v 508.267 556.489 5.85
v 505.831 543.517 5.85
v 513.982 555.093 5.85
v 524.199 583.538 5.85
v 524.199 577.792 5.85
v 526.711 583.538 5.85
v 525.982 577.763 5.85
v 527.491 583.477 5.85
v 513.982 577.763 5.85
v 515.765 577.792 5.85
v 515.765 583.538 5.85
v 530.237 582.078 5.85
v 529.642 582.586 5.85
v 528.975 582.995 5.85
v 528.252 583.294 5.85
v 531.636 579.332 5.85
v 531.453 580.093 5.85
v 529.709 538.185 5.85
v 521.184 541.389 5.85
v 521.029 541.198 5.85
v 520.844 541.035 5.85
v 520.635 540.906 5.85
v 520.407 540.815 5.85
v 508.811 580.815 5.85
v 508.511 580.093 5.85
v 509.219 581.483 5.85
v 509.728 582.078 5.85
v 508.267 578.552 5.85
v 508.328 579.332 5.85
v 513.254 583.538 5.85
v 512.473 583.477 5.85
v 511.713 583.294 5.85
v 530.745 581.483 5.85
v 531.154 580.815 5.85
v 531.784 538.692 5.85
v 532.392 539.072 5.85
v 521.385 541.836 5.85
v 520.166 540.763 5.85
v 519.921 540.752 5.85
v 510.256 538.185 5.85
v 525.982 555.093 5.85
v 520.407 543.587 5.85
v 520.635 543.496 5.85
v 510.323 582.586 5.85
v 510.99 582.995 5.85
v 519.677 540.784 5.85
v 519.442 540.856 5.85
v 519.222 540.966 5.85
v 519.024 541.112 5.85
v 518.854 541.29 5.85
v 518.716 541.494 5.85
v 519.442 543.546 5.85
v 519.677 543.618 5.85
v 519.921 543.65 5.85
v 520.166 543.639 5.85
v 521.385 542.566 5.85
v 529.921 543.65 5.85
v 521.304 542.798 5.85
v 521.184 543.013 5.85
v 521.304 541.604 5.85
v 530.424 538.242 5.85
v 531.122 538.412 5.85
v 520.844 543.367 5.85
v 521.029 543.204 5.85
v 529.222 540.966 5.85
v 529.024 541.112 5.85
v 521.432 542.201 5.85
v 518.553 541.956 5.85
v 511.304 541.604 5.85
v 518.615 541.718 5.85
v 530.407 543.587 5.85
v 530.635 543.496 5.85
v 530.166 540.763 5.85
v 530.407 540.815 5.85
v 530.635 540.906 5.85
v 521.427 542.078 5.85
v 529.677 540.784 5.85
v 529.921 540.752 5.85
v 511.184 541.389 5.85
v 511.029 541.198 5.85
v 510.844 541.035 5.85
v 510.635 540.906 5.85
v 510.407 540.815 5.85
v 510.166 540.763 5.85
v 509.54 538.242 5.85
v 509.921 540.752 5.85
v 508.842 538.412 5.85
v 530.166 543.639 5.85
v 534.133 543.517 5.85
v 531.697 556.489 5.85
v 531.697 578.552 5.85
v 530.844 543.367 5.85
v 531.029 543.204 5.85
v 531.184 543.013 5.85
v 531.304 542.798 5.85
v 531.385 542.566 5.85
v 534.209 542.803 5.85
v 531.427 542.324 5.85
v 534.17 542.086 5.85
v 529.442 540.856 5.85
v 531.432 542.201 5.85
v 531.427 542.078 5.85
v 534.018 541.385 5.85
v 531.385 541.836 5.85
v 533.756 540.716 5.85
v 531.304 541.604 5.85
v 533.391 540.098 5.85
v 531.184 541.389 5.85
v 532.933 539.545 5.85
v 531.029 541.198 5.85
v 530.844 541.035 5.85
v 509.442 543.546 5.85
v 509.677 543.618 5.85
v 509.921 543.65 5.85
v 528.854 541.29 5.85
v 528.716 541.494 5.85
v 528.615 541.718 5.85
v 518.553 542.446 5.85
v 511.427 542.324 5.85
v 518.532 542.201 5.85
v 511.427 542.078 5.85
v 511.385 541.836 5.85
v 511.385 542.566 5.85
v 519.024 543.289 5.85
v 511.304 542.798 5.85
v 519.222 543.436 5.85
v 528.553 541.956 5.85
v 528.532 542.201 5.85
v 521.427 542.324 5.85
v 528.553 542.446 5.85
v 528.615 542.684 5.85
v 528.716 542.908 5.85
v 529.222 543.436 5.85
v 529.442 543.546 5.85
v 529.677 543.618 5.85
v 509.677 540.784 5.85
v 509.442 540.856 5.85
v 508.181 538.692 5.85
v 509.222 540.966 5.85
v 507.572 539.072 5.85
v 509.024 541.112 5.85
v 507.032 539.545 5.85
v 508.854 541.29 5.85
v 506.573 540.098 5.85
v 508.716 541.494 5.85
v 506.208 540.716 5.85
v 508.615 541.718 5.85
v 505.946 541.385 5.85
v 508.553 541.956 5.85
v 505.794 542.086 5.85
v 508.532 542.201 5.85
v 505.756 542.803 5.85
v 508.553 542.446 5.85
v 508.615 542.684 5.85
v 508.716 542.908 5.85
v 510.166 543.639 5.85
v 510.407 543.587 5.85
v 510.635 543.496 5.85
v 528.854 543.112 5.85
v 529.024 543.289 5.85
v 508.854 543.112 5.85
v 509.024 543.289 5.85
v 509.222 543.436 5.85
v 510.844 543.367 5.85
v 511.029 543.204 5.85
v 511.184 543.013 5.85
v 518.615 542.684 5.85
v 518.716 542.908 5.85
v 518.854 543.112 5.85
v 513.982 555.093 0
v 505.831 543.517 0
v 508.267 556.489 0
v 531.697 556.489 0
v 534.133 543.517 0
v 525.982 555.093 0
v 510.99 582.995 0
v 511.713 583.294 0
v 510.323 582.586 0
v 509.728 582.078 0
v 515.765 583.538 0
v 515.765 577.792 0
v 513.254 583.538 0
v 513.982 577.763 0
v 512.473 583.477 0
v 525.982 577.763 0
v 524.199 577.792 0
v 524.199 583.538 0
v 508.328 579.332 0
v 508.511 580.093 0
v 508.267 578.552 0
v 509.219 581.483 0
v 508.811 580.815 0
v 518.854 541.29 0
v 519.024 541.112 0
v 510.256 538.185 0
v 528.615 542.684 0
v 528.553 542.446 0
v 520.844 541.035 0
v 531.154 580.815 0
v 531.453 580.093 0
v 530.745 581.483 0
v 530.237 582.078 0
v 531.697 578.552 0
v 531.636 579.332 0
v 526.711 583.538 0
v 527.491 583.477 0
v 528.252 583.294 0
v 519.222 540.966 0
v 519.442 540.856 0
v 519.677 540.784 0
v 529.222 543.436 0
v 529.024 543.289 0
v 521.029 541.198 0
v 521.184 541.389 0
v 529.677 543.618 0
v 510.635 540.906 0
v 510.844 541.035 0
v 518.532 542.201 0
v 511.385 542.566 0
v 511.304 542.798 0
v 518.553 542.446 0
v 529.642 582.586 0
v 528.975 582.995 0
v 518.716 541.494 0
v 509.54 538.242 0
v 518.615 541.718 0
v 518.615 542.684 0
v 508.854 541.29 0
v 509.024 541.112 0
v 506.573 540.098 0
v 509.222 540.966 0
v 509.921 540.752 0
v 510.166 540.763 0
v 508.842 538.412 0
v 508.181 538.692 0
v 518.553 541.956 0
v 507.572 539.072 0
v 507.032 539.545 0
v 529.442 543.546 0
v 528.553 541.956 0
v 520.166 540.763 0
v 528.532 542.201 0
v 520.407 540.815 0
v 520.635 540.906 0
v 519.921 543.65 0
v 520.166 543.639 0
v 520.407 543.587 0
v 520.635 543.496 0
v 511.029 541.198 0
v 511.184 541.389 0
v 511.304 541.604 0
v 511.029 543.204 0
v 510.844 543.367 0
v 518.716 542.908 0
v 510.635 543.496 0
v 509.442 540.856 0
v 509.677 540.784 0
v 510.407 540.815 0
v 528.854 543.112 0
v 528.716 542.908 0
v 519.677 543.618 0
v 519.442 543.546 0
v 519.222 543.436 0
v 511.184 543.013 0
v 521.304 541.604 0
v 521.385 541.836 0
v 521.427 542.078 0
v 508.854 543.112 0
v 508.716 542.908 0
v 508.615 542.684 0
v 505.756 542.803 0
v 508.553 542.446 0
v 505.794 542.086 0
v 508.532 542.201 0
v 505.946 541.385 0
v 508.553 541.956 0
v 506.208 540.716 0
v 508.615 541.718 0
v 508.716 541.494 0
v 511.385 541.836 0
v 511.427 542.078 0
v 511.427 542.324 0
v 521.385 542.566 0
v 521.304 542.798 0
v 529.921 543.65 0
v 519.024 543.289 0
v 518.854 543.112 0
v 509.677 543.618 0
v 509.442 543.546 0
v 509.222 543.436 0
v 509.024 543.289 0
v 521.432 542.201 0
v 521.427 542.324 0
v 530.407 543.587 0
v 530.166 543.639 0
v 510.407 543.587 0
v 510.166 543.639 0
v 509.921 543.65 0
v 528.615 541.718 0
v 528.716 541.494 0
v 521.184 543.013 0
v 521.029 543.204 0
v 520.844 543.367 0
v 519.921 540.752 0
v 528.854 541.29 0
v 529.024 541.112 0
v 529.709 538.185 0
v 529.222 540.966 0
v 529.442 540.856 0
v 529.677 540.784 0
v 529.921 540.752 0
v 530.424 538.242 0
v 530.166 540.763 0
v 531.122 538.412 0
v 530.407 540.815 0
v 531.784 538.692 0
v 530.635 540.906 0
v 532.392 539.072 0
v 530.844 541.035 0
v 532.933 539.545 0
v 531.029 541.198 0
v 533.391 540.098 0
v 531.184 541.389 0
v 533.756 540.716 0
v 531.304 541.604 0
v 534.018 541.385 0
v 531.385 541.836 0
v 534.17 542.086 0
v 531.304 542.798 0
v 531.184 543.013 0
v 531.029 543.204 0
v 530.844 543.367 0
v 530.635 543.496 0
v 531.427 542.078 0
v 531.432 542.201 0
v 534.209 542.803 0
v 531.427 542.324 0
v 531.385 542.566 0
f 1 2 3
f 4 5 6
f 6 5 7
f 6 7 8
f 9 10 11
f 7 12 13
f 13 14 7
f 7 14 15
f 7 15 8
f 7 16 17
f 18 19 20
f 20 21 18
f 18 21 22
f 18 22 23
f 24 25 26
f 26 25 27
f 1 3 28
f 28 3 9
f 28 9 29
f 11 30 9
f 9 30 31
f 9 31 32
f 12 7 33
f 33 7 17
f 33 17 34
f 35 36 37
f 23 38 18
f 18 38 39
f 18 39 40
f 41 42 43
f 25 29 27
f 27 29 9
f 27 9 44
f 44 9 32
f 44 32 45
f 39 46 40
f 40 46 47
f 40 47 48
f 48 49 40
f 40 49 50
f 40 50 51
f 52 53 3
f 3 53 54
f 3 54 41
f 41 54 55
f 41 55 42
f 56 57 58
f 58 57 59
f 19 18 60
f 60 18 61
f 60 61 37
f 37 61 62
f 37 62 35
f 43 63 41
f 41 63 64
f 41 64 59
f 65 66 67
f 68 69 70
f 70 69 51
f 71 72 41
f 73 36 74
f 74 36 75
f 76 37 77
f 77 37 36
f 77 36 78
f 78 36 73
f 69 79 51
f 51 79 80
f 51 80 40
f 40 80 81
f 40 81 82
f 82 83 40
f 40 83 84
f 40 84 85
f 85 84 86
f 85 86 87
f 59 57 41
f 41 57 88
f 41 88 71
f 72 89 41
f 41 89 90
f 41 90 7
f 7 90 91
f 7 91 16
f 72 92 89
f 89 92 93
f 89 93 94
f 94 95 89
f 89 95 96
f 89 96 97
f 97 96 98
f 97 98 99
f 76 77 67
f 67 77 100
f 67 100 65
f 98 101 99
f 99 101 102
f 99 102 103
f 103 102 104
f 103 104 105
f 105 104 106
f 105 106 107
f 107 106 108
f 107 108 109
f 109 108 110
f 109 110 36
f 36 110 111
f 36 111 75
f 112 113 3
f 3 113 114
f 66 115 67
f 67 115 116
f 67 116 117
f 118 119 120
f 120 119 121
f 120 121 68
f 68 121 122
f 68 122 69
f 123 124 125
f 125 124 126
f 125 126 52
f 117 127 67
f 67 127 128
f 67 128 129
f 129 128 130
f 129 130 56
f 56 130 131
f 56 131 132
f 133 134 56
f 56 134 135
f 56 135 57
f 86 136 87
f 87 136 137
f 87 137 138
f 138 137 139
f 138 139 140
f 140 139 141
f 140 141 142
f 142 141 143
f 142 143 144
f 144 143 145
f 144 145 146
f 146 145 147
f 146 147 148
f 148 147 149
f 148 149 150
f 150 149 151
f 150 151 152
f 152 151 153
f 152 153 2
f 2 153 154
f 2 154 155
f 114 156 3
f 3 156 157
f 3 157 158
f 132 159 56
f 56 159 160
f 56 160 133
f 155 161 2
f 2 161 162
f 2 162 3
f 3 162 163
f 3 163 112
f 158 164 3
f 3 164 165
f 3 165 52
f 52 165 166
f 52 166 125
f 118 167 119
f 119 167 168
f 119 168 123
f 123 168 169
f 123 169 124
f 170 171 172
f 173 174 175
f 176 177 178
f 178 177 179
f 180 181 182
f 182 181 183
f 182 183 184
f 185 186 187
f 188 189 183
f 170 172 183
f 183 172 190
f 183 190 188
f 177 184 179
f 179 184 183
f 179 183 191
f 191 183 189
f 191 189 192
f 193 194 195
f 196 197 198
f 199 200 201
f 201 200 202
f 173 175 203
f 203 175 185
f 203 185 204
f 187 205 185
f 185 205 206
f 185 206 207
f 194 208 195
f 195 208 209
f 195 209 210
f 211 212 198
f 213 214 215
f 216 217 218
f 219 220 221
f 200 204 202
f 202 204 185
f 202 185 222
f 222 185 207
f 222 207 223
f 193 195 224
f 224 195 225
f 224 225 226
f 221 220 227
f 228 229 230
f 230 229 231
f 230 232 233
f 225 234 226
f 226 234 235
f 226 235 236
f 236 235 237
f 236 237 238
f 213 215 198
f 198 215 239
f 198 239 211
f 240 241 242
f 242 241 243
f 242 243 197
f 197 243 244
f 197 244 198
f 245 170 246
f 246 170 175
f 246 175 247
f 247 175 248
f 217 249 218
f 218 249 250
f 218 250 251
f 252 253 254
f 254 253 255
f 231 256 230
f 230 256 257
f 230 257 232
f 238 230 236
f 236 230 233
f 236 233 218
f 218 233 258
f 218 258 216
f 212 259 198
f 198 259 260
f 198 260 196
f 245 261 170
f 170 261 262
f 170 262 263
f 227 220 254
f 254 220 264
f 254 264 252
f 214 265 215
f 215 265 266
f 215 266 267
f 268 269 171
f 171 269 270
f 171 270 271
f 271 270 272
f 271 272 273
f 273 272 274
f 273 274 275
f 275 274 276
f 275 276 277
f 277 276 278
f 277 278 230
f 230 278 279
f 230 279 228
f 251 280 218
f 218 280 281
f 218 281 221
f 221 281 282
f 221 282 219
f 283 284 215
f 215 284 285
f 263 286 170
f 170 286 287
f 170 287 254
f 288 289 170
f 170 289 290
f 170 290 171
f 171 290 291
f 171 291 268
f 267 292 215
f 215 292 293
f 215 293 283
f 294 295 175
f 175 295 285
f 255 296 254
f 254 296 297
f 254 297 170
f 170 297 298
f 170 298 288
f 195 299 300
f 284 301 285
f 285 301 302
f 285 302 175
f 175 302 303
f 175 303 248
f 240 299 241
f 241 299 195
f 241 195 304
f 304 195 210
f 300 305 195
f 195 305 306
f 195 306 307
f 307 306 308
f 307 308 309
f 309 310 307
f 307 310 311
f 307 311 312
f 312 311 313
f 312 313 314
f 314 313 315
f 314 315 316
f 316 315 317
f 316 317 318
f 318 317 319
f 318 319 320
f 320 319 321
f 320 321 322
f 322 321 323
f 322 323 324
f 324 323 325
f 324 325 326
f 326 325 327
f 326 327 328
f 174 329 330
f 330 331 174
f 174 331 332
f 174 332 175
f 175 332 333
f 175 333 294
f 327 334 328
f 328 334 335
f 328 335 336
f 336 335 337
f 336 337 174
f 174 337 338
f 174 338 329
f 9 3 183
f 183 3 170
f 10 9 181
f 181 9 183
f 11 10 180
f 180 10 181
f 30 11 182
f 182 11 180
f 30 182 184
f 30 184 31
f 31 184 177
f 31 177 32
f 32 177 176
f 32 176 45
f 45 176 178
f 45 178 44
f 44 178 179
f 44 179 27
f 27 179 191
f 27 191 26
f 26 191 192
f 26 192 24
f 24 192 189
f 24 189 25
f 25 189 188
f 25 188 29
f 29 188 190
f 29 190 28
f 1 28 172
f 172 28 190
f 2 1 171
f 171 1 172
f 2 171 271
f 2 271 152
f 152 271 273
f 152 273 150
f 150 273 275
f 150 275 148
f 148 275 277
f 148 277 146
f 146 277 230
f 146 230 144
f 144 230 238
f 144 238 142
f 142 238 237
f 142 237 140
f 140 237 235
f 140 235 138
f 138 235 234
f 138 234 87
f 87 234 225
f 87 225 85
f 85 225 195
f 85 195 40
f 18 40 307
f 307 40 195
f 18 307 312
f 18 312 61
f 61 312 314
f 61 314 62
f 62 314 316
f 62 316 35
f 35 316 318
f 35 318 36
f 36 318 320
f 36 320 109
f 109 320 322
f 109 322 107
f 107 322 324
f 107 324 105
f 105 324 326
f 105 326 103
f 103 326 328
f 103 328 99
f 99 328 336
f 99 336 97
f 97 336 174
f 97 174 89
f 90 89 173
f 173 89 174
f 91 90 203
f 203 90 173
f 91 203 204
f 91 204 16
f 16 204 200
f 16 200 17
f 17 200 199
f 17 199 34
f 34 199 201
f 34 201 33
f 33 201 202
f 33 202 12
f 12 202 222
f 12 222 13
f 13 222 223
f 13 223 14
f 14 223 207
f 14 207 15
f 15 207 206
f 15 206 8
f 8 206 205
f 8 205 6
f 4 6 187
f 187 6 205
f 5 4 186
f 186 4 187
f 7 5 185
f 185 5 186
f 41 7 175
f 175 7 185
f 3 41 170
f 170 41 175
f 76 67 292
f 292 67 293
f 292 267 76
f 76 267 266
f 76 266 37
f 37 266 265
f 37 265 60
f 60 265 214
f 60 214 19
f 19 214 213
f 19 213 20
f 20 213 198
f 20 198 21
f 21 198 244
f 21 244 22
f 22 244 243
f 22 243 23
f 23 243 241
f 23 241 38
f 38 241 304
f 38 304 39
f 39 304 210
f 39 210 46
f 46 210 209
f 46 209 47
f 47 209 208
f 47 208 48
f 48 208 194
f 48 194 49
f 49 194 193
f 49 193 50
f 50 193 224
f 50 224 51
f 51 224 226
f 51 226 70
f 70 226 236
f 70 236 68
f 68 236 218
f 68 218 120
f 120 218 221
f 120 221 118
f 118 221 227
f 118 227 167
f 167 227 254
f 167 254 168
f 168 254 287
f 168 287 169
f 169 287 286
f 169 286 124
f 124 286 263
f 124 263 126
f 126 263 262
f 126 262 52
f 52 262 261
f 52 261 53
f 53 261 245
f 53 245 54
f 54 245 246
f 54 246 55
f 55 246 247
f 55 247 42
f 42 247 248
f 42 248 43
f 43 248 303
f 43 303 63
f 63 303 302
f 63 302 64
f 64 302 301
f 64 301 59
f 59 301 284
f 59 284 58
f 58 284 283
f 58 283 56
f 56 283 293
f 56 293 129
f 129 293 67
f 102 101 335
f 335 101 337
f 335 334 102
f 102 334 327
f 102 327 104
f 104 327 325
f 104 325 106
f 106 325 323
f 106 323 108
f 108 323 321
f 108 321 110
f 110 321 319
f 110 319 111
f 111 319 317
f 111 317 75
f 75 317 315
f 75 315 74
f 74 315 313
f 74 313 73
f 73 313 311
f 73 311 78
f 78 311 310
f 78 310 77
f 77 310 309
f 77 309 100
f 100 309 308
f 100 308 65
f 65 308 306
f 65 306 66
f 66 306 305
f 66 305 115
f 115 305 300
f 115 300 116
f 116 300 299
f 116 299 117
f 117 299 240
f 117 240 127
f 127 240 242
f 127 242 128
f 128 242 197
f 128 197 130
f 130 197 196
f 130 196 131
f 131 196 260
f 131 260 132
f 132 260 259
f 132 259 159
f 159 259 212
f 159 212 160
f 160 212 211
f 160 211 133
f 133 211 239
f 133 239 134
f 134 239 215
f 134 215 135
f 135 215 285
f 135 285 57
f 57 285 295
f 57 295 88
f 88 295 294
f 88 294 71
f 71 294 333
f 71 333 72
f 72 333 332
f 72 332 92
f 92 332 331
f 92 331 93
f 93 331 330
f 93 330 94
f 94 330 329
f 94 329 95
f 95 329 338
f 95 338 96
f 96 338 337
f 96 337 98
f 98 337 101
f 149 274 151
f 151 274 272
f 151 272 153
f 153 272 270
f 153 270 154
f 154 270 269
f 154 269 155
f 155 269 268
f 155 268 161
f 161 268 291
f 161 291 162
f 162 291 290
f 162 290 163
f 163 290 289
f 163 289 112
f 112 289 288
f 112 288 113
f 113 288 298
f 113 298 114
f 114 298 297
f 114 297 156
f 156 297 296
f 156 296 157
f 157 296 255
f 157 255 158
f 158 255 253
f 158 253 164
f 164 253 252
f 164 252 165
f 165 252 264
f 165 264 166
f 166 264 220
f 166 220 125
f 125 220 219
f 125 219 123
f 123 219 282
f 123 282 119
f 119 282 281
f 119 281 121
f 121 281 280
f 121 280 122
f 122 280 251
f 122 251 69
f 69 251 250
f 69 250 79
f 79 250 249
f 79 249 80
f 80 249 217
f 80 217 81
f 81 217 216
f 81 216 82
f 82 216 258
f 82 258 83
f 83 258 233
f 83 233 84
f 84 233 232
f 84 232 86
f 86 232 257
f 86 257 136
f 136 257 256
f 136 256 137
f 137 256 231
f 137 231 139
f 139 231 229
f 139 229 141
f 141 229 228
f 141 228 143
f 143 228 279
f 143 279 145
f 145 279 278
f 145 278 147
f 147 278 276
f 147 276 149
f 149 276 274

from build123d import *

# Parameters (mm, degrees)
MODEL_R             = 1.449999899
MODEL_R_2           = 1.450000076
BOSS_EXTRUDE1_DEPTH = 5.85


with BuildPart() as part:
    # Model → Boss-Extrude1 (new body)
    with BuildSketch(Plane.XY):
        with BuildLine():
            Line((508.267115634, 556.488649767), (505.831367634, 543.517354767))
            ThreePointArc((505.831367634, 543.517354767), (506.791253617, 539.812058859), (510.255750143, 538.184833401))
            Line((510.255750143, 538.184833401), (529.708723634, 538.184833401))
            ThreePointArc((529.708723634, 538.184833401), (533.173220159, 539.812058859), (534.133106143, 543.517354767))
            Line((534.133106143, 543.517354767), (531.697358143, 556.488649767))
            Line((531.697358143, 556.488649767), (531.697358143, 578.551691787))
            ThreePointArc((531.697358143, 578.551691787), (530.236877746, 582.07760337), (526.710966163, 583.538083767))
            Line((526.710966163, 583.538083767), (524.199056888, 583.538083767))
            Line((524.199056888, 583.538083767), (524.199056888, 577.792158))
            Line((524.199056888, 577.792158), (525.982236888, 577.762664))
            Line((525.982236888, 577.762664), (525.982236888, 555.093173))
            Line((525.982236888, 555.093173), (513.982236888, 555.093173))
            Line((513.982236888, 555.093173), (513.982236888, 577.762664))
            Line((513.982236888, 577.762664), (515.765416888, 577.792158))
            Line((515.765416888, 577.792158), (515.765416888, 583.538083767))
            Line((515.765416888, 583.538083767), (513.253507613, 583.538083767))
            ThreePointArc((513.253507613, 583.538083767), (509.727596031, 582.07760337), (508.267115634, 578.551691787))
            Line((508.267115634, 578.551691787), (508.267115634, 556.488649767))
        make_face()
        with Locations(Location((509.982236888, 542.200965, 0), (0, 0, 180))):
            Circle(MODEL_R, mode=Mode.SUBTRACT)
        with Locations((519.982236888, 542.200965)):
            Circle(MODEL_R_2, mode=Mode.SUBTRACT)
        with Locations((529.982236888, 542.200965)):
            Circle(MODEL_R, mode=Mode.SUBTRACT)
    extrude(amount=BOSS_EXTRUDE1_DEPTH)


solid = part.part
